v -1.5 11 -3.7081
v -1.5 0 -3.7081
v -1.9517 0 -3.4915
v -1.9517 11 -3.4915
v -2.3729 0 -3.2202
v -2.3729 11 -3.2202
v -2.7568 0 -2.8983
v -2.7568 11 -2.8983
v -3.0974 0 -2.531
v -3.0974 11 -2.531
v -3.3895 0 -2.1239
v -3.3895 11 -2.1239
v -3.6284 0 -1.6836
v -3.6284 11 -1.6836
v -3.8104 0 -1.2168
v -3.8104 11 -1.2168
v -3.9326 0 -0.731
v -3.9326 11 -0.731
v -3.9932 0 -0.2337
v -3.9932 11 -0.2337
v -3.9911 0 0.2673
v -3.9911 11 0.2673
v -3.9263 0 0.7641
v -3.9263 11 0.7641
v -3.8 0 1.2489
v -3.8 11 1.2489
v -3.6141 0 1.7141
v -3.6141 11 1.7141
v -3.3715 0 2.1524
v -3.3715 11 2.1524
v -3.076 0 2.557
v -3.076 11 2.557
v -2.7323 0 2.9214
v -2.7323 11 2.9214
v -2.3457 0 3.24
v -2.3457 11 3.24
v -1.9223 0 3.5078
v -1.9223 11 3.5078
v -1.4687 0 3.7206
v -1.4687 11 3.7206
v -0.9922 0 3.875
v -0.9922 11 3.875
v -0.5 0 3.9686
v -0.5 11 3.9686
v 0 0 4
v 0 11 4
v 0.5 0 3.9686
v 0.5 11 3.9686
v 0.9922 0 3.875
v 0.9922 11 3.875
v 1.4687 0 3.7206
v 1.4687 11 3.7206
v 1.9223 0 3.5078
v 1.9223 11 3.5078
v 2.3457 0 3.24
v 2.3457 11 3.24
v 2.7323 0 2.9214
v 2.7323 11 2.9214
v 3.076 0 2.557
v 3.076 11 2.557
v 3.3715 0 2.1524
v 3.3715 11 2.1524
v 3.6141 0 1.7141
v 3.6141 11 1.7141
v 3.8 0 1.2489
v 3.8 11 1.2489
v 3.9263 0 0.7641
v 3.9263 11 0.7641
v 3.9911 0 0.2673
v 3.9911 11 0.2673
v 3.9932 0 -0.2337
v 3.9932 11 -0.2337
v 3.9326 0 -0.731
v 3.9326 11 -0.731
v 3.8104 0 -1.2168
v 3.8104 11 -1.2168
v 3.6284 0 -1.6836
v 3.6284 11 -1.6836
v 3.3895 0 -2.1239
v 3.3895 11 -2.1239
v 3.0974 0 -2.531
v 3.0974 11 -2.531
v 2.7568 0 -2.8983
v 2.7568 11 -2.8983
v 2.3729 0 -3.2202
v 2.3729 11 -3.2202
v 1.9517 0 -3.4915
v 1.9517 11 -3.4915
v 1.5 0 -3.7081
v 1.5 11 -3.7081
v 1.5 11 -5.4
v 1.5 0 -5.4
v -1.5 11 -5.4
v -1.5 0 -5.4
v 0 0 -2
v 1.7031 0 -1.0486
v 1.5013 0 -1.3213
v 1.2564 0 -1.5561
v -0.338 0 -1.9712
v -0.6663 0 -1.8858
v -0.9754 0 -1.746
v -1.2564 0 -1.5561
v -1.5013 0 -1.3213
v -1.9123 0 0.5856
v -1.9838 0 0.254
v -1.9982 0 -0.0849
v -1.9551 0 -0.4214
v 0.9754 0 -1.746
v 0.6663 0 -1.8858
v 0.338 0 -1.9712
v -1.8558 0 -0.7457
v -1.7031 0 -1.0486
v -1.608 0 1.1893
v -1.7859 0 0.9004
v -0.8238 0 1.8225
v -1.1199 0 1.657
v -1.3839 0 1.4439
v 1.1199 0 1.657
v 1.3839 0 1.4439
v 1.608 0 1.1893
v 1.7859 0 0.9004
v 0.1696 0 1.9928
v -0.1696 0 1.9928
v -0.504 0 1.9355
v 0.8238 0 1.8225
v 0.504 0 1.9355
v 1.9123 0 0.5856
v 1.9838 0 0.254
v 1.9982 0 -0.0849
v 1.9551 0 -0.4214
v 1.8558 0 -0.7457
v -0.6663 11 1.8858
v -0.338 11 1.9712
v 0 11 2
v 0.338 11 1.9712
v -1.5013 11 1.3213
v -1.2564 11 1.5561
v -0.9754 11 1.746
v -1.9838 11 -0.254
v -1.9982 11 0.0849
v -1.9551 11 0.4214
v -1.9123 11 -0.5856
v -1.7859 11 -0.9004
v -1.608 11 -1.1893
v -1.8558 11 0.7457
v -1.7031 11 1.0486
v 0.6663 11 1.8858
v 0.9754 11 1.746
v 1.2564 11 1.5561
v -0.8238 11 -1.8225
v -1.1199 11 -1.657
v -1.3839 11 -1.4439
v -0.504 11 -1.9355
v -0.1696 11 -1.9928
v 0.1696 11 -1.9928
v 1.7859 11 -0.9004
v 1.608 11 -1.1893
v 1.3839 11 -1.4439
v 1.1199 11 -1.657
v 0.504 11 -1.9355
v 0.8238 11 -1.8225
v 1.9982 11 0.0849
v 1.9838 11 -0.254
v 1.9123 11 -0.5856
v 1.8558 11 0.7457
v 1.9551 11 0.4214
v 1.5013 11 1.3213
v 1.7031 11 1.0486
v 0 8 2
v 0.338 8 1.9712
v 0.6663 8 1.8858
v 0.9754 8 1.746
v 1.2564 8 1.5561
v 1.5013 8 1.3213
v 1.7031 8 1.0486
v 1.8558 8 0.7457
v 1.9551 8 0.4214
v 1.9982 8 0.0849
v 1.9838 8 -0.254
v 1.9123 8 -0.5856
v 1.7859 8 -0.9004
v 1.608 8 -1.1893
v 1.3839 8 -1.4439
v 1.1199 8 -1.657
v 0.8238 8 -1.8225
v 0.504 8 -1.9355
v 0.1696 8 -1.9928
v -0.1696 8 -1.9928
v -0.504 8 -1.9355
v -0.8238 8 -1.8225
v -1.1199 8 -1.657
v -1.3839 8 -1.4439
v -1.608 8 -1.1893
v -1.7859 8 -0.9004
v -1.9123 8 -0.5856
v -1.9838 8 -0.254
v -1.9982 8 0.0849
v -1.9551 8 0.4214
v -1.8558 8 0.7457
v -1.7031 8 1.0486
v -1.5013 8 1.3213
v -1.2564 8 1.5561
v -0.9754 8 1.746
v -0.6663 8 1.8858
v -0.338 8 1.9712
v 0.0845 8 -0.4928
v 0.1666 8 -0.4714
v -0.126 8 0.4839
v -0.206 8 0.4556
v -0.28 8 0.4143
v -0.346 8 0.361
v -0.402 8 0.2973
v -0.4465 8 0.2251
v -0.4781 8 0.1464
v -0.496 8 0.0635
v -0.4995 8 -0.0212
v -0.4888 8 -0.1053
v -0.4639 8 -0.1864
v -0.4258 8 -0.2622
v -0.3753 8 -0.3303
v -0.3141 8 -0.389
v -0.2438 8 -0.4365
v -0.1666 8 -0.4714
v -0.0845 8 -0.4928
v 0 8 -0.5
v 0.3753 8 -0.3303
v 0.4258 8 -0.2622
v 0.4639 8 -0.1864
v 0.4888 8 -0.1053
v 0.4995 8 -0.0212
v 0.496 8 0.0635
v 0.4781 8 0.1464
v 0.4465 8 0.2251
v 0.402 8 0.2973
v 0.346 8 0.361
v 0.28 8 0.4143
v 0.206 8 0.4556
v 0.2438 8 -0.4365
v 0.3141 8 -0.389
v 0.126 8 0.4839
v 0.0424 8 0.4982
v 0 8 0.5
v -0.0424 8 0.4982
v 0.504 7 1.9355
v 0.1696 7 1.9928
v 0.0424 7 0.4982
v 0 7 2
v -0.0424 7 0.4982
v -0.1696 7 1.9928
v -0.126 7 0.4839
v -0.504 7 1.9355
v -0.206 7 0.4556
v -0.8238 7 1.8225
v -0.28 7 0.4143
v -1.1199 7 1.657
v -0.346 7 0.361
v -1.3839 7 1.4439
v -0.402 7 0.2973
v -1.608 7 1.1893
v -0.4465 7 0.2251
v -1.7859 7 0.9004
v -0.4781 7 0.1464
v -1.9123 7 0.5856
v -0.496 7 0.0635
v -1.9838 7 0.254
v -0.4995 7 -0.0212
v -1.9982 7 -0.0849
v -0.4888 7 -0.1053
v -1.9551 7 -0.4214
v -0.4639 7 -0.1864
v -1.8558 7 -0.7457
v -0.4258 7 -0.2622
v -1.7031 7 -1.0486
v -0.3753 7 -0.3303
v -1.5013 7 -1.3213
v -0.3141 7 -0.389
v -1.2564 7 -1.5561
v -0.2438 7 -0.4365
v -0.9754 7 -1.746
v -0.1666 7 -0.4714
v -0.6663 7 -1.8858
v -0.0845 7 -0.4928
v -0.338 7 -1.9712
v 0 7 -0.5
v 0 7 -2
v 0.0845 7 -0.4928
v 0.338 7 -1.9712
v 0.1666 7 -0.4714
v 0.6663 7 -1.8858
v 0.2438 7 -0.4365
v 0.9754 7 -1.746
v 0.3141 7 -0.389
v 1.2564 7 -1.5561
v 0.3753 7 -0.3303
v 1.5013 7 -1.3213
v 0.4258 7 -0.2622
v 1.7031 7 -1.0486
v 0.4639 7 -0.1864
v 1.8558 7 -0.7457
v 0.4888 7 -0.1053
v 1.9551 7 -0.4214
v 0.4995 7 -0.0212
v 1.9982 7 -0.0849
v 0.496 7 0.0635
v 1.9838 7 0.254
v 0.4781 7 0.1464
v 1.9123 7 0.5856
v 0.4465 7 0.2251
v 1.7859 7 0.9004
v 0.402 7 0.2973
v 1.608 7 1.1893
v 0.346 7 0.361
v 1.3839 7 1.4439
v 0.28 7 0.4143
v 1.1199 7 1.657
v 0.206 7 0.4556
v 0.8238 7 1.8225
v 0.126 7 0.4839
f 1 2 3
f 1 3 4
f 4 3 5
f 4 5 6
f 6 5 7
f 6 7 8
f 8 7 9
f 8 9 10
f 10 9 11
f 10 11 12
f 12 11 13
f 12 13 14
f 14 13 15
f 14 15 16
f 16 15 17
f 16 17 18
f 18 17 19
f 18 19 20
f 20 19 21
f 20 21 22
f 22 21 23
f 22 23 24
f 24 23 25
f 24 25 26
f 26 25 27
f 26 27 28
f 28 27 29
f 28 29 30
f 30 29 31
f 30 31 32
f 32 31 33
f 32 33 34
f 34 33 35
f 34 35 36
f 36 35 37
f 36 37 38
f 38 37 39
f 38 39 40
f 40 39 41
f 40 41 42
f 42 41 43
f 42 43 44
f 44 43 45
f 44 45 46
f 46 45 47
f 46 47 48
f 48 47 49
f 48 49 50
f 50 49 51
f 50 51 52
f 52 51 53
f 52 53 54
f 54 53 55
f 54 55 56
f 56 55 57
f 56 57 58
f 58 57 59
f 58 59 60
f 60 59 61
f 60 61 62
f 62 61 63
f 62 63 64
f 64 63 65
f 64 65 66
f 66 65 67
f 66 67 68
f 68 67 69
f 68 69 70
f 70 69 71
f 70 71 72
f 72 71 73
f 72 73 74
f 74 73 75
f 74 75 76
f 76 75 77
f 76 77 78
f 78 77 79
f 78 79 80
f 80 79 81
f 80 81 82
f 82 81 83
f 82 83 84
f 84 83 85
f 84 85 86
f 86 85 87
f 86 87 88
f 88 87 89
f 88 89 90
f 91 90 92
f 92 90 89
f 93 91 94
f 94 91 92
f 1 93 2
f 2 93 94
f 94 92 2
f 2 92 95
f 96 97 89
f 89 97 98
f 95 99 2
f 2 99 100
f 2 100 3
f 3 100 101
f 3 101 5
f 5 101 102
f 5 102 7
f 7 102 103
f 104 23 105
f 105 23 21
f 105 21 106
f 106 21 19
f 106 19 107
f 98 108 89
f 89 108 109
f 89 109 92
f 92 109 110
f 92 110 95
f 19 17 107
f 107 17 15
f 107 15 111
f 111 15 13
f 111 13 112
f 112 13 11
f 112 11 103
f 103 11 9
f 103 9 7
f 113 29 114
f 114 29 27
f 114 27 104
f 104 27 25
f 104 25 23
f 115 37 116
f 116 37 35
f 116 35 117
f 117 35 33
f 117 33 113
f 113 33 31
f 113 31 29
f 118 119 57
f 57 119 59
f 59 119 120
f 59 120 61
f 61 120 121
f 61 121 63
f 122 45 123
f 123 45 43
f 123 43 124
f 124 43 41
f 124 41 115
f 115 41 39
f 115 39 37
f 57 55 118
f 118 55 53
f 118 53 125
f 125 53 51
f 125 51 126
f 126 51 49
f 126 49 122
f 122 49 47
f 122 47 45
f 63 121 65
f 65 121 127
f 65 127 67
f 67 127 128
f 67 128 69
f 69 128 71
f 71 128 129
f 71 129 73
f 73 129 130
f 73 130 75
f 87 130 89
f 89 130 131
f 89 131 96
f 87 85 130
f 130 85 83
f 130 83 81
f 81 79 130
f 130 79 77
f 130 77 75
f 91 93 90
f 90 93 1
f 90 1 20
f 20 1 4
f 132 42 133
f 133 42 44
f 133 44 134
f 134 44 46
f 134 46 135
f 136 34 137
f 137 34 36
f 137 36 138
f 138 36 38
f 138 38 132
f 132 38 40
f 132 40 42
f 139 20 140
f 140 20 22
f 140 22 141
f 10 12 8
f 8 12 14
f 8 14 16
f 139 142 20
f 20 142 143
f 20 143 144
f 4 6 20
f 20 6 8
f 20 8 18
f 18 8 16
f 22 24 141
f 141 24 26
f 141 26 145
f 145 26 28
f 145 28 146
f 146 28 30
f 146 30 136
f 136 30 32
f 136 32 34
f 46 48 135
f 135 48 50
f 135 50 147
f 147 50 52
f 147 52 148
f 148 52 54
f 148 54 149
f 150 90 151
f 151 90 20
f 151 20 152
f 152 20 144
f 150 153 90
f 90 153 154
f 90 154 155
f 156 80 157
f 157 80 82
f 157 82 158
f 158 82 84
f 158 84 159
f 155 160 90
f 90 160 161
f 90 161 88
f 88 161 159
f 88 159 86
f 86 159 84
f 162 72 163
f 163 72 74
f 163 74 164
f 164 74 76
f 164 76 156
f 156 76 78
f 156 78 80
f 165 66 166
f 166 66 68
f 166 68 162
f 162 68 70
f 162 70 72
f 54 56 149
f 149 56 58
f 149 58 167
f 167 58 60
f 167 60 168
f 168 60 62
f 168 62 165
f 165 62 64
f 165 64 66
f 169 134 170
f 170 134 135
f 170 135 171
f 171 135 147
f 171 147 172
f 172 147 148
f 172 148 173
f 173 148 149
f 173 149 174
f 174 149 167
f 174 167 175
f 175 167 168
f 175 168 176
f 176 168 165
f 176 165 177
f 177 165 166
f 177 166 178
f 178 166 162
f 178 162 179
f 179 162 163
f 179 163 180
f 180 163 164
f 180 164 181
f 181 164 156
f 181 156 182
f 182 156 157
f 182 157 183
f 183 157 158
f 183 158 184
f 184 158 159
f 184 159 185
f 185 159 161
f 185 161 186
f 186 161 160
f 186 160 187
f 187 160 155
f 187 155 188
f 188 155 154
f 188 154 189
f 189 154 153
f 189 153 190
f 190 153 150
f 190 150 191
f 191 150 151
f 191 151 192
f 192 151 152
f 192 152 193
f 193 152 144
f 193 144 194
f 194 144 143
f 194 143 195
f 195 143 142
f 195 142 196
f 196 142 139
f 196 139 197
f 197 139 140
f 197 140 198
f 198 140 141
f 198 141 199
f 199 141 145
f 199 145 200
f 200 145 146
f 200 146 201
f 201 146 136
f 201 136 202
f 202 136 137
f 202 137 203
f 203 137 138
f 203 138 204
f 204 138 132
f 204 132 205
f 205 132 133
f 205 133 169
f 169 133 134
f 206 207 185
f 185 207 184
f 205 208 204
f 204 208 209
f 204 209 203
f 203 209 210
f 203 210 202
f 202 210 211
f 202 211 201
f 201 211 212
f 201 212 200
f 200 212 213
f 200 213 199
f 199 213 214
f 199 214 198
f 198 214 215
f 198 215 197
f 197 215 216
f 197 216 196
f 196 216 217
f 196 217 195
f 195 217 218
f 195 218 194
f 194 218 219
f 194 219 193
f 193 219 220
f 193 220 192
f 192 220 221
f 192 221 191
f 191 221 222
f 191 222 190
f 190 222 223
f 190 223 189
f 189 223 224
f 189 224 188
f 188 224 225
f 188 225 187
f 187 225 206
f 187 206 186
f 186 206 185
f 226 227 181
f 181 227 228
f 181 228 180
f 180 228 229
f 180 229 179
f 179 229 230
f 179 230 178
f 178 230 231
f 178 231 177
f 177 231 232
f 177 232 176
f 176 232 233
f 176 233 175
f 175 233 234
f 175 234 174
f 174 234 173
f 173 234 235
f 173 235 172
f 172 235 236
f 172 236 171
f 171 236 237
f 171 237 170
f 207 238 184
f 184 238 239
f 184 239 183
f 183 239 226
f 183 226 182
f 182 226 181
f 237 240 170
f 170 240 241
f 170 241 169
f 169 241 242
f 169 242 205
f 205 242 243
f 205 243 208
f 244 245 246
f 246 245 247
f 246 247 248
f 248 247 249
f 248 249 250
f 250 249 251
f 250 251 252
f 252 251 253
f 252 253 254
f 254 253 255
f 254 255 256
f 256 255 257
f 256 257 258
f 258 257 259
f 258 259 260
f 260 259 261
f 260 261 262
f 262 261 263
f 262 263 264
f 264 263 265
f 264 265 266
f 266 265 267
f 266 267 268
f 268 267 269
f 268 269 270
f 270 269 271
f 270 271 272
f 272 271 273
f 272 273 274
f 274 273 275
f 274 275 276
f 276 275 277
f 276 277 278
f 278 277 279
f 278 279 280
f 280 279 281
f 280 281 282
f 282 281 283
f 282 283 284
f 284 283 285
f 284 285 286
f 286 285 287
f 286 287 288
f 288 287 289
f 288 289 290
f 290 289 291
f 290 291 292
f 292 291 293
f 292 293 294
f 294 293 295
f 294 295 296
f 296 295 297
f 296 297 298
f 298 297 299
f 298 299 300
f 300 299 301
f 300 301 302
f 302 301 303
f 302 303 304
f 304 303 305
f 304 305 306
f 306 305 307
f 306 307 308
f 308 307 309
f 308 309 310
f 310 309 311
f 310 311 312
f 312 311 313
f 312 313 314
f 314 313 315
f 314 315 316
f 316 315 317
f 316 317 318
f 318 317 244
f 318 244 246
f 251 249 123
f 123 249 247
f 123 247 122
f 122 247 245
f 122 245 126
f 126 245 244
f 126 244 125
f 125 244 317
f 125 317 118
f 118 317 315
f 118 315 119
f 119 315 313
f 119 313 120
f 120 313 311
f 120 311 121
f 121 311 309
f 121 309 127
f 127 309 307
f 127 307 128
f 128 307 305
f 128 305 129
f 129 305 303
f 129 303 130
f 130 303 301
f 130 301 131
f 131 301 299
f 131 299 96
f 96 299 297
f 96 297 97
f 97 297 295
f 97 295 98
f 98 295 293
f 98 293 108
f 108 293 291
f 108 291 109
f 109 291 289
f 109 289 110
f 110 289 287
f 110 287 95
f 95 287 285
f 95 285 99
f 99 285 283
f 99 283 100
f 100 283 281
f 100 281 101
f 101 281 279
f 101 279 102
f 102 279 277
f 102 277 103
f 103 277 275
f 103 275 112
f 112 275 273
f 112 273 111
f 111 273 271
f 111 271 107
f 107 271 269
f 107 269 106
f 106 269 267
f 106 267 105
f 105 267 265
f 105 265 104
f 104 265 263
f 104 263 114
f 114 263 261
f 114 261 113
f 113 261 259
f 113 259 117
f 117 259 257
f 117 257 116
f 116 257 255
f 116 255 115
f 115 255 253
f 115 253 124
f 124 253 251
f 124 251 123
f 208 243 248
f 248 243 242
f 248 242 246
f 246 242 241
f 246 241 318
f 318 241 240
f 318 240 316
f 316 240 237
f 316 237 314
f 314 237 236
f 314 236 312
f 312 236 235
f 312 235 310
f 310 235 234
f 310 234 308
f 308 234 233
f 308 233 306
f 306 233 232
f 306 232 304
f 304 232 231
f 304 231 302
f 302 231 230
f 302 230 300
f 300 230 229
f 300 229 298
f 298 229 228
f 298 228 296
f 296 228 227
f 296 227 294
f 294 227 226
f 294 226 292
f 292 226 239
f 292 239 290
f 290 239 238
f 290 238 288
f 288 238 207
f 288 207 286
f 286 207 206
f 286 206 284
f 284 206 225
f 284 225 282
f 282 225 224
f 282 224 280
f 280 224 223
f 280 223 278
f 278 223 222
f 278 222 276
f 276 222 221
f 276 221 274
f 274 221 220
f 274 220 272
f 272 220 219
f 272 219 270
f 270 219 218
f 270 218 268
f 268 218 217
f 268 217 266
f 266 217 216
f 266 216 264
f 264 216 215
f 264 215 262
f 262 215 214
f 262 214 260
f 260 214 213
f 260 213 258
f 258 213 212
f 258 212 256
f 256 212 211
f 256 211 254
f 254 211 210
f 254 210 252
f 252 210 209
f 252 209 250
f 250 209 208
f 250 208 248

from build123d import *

# Parameters (mm, degrees)
EXTRUDE_3_DEPTH     = 10
EXTRUDE_4_DEPTH     = 1
SKETCH_6_R          = 2
CUT_EXTRUDE_1_DEPTH = 3
EXTRUDE_5_DEPTH     = 1
CUT_EXTRUDE_START   = -7
SKETCH_9_R          = 2
CUT_EXTRUDE_3_DEPTH = 7
SKETCH_10_R         = 0.5
CUT_EXTRUDE_5_DEPTH = 10.703607577


with BuildPart() as part:
    # 草图4 → 凸台-拉伸3 (new body)
    with BuildSketch(Plane(origin=(0, 0, 0), x_dir=(1, 0, 0), z_dir=(0, 1, 0))):
        with BuildLine():
            Line((-1.5, 3.708099244), (-1.5, 0))
            Line((-1.5, 0), (1.5, 0))
            Line((1.5, 0), (1.5, 3.708099244))
            ThreePointArc((1.5, 3.708099244), (0, 4), (-1.5, 3.708099244))
        make_face()
        with BuildLine():
            Line((1.5, 0), (-1.5, 0))
            Line((-1.5, 0), (-1.5, 3.708099244))
            ThreePointArc((-1.5, 3.708099244), (-2.236067977, -3.31662479), (4, 0))
            ThreePointArc((4, 0), (3.31662479, 2.236067977), (1.5, 3.708099244))
            Line((1.5, 3.708099244), (1.5, 0))
        make_face()
        with BuildLine():
            Line((-1.5, 3.708099244), (-1.5, 0))
            Line((-1.5, 0), (1.5, 0))
            Line((1.5, 0), (1.5, 3.708099244))
            ThreePointArc((1.5, 3.708099244), (0, 4), (-1.5, 3.708099244))
        make_face()
        with BuildLine():
            Line((1.5, 0), (-1.5, 0))
            Line((-1.5, 0), (-1.5, 3.708099244))
            ThreePointArc((-1.5, 3.708099244), (-2.236067977, -3.31662479), (4, 0))
            ThreePointArc((4, 0), (3.31662479, 2.236067977), (1.5, 3.708099244))
            Line((1.5, 3.708099244), (1.5, 0))
        make_face()
        with BuildLine():
            Line((-1.5, 5.4), (-1.5, 3.708099244))
            ThreePointArc((-1.5, 3.708099244), (0, 4), (1.5, 3.708099244))
            Line((1.5, 3.708099244), (1.5, 5.4))
            Line((1.5, 5.4), (-1.5, 5.4))
        make_face()
    extrude(amount=EXTRUDE_3_DEPTH)

    # 草图5 → 凸台-拉伸4 (add)
    with BuildSketch(Plane(origin=(0, 10, 0), x_dir=(1, 0, 0), z_dir=(0, 1, 0))):
        with BuildLine():
            ThreePointArc((4, 0), (3.31662479, 2.236067977), (1.5, 3.708099244))
            ThreePointArc((1.5, 3.708099244), (0, 4), (-1.5, 3.708099244))
            ThreePointArc((-1.5, 3.708099244), (-2.236067977, -3.31662479), (4, 0))
        make_face()
    extrude(amount=EXTRUDE_4_DEPTH)

    # 草图6 → 切除-拉伸1 (cut)
    with BuildSketch(Plane(origin=(0, 11, 0), x_dir=(1, 0, 0), z_dir=(0, 1, 0))):
        with Locations(Location((0, 0, 0), (0, 0, 270))):
            Circle(SKETCH_6_R)
    extrude(amount=-CUT_EXTRUDE_1_DEPTH, mode=Mode.SUBTRACT)

    # 草图7 → 凸台-拉伸5 (add)
    with BuildSketch(Plane(origin=(0, 10, 0), x_dir=(1, 0, 0), z_dir=(0, 1, 0))):
        with BuildLine():
            ThreePointArc((-1.5, 3.708099244), (0, 4), (1.5, 3.708099244))
            Line((1.5, 3.708099244), (1.5, 5.4))
            Line((1.5, 5.4), (-1.5, 5.4))
            Line((-1.5, 5.4), (-1.5, 3.708099244))
        make_face()
    extrude(amount=EXTRUDE_5_DEPTH)

    # 草图9 → 切除-拉伸3 (cut)
    with BuildSketch(Plane.XZ.offset(CUT_EXTRUDE_START)):
        with Locations(Location((0, 0, 0), (0, 0, 90))):
            Circle(SKETCH_9_R)
    extrude(amount=CUT_EXTRUDE_3_DEPTH, mode=Mode.SUBTRACT)

    # 草图10 → 切除-拉伸5 (cut, through all)
    with BuildSketch(Plane.XZ.offset(-7)):
        with Locations(Location((0, 0, 0), (0, 0, 270))):
            Circle(SKETCH_10_R)
    extrude(amount=-CUT_EXTRUDE_5_DEPTH, mode=Mode.SUBTRACT)


solid = part.part
